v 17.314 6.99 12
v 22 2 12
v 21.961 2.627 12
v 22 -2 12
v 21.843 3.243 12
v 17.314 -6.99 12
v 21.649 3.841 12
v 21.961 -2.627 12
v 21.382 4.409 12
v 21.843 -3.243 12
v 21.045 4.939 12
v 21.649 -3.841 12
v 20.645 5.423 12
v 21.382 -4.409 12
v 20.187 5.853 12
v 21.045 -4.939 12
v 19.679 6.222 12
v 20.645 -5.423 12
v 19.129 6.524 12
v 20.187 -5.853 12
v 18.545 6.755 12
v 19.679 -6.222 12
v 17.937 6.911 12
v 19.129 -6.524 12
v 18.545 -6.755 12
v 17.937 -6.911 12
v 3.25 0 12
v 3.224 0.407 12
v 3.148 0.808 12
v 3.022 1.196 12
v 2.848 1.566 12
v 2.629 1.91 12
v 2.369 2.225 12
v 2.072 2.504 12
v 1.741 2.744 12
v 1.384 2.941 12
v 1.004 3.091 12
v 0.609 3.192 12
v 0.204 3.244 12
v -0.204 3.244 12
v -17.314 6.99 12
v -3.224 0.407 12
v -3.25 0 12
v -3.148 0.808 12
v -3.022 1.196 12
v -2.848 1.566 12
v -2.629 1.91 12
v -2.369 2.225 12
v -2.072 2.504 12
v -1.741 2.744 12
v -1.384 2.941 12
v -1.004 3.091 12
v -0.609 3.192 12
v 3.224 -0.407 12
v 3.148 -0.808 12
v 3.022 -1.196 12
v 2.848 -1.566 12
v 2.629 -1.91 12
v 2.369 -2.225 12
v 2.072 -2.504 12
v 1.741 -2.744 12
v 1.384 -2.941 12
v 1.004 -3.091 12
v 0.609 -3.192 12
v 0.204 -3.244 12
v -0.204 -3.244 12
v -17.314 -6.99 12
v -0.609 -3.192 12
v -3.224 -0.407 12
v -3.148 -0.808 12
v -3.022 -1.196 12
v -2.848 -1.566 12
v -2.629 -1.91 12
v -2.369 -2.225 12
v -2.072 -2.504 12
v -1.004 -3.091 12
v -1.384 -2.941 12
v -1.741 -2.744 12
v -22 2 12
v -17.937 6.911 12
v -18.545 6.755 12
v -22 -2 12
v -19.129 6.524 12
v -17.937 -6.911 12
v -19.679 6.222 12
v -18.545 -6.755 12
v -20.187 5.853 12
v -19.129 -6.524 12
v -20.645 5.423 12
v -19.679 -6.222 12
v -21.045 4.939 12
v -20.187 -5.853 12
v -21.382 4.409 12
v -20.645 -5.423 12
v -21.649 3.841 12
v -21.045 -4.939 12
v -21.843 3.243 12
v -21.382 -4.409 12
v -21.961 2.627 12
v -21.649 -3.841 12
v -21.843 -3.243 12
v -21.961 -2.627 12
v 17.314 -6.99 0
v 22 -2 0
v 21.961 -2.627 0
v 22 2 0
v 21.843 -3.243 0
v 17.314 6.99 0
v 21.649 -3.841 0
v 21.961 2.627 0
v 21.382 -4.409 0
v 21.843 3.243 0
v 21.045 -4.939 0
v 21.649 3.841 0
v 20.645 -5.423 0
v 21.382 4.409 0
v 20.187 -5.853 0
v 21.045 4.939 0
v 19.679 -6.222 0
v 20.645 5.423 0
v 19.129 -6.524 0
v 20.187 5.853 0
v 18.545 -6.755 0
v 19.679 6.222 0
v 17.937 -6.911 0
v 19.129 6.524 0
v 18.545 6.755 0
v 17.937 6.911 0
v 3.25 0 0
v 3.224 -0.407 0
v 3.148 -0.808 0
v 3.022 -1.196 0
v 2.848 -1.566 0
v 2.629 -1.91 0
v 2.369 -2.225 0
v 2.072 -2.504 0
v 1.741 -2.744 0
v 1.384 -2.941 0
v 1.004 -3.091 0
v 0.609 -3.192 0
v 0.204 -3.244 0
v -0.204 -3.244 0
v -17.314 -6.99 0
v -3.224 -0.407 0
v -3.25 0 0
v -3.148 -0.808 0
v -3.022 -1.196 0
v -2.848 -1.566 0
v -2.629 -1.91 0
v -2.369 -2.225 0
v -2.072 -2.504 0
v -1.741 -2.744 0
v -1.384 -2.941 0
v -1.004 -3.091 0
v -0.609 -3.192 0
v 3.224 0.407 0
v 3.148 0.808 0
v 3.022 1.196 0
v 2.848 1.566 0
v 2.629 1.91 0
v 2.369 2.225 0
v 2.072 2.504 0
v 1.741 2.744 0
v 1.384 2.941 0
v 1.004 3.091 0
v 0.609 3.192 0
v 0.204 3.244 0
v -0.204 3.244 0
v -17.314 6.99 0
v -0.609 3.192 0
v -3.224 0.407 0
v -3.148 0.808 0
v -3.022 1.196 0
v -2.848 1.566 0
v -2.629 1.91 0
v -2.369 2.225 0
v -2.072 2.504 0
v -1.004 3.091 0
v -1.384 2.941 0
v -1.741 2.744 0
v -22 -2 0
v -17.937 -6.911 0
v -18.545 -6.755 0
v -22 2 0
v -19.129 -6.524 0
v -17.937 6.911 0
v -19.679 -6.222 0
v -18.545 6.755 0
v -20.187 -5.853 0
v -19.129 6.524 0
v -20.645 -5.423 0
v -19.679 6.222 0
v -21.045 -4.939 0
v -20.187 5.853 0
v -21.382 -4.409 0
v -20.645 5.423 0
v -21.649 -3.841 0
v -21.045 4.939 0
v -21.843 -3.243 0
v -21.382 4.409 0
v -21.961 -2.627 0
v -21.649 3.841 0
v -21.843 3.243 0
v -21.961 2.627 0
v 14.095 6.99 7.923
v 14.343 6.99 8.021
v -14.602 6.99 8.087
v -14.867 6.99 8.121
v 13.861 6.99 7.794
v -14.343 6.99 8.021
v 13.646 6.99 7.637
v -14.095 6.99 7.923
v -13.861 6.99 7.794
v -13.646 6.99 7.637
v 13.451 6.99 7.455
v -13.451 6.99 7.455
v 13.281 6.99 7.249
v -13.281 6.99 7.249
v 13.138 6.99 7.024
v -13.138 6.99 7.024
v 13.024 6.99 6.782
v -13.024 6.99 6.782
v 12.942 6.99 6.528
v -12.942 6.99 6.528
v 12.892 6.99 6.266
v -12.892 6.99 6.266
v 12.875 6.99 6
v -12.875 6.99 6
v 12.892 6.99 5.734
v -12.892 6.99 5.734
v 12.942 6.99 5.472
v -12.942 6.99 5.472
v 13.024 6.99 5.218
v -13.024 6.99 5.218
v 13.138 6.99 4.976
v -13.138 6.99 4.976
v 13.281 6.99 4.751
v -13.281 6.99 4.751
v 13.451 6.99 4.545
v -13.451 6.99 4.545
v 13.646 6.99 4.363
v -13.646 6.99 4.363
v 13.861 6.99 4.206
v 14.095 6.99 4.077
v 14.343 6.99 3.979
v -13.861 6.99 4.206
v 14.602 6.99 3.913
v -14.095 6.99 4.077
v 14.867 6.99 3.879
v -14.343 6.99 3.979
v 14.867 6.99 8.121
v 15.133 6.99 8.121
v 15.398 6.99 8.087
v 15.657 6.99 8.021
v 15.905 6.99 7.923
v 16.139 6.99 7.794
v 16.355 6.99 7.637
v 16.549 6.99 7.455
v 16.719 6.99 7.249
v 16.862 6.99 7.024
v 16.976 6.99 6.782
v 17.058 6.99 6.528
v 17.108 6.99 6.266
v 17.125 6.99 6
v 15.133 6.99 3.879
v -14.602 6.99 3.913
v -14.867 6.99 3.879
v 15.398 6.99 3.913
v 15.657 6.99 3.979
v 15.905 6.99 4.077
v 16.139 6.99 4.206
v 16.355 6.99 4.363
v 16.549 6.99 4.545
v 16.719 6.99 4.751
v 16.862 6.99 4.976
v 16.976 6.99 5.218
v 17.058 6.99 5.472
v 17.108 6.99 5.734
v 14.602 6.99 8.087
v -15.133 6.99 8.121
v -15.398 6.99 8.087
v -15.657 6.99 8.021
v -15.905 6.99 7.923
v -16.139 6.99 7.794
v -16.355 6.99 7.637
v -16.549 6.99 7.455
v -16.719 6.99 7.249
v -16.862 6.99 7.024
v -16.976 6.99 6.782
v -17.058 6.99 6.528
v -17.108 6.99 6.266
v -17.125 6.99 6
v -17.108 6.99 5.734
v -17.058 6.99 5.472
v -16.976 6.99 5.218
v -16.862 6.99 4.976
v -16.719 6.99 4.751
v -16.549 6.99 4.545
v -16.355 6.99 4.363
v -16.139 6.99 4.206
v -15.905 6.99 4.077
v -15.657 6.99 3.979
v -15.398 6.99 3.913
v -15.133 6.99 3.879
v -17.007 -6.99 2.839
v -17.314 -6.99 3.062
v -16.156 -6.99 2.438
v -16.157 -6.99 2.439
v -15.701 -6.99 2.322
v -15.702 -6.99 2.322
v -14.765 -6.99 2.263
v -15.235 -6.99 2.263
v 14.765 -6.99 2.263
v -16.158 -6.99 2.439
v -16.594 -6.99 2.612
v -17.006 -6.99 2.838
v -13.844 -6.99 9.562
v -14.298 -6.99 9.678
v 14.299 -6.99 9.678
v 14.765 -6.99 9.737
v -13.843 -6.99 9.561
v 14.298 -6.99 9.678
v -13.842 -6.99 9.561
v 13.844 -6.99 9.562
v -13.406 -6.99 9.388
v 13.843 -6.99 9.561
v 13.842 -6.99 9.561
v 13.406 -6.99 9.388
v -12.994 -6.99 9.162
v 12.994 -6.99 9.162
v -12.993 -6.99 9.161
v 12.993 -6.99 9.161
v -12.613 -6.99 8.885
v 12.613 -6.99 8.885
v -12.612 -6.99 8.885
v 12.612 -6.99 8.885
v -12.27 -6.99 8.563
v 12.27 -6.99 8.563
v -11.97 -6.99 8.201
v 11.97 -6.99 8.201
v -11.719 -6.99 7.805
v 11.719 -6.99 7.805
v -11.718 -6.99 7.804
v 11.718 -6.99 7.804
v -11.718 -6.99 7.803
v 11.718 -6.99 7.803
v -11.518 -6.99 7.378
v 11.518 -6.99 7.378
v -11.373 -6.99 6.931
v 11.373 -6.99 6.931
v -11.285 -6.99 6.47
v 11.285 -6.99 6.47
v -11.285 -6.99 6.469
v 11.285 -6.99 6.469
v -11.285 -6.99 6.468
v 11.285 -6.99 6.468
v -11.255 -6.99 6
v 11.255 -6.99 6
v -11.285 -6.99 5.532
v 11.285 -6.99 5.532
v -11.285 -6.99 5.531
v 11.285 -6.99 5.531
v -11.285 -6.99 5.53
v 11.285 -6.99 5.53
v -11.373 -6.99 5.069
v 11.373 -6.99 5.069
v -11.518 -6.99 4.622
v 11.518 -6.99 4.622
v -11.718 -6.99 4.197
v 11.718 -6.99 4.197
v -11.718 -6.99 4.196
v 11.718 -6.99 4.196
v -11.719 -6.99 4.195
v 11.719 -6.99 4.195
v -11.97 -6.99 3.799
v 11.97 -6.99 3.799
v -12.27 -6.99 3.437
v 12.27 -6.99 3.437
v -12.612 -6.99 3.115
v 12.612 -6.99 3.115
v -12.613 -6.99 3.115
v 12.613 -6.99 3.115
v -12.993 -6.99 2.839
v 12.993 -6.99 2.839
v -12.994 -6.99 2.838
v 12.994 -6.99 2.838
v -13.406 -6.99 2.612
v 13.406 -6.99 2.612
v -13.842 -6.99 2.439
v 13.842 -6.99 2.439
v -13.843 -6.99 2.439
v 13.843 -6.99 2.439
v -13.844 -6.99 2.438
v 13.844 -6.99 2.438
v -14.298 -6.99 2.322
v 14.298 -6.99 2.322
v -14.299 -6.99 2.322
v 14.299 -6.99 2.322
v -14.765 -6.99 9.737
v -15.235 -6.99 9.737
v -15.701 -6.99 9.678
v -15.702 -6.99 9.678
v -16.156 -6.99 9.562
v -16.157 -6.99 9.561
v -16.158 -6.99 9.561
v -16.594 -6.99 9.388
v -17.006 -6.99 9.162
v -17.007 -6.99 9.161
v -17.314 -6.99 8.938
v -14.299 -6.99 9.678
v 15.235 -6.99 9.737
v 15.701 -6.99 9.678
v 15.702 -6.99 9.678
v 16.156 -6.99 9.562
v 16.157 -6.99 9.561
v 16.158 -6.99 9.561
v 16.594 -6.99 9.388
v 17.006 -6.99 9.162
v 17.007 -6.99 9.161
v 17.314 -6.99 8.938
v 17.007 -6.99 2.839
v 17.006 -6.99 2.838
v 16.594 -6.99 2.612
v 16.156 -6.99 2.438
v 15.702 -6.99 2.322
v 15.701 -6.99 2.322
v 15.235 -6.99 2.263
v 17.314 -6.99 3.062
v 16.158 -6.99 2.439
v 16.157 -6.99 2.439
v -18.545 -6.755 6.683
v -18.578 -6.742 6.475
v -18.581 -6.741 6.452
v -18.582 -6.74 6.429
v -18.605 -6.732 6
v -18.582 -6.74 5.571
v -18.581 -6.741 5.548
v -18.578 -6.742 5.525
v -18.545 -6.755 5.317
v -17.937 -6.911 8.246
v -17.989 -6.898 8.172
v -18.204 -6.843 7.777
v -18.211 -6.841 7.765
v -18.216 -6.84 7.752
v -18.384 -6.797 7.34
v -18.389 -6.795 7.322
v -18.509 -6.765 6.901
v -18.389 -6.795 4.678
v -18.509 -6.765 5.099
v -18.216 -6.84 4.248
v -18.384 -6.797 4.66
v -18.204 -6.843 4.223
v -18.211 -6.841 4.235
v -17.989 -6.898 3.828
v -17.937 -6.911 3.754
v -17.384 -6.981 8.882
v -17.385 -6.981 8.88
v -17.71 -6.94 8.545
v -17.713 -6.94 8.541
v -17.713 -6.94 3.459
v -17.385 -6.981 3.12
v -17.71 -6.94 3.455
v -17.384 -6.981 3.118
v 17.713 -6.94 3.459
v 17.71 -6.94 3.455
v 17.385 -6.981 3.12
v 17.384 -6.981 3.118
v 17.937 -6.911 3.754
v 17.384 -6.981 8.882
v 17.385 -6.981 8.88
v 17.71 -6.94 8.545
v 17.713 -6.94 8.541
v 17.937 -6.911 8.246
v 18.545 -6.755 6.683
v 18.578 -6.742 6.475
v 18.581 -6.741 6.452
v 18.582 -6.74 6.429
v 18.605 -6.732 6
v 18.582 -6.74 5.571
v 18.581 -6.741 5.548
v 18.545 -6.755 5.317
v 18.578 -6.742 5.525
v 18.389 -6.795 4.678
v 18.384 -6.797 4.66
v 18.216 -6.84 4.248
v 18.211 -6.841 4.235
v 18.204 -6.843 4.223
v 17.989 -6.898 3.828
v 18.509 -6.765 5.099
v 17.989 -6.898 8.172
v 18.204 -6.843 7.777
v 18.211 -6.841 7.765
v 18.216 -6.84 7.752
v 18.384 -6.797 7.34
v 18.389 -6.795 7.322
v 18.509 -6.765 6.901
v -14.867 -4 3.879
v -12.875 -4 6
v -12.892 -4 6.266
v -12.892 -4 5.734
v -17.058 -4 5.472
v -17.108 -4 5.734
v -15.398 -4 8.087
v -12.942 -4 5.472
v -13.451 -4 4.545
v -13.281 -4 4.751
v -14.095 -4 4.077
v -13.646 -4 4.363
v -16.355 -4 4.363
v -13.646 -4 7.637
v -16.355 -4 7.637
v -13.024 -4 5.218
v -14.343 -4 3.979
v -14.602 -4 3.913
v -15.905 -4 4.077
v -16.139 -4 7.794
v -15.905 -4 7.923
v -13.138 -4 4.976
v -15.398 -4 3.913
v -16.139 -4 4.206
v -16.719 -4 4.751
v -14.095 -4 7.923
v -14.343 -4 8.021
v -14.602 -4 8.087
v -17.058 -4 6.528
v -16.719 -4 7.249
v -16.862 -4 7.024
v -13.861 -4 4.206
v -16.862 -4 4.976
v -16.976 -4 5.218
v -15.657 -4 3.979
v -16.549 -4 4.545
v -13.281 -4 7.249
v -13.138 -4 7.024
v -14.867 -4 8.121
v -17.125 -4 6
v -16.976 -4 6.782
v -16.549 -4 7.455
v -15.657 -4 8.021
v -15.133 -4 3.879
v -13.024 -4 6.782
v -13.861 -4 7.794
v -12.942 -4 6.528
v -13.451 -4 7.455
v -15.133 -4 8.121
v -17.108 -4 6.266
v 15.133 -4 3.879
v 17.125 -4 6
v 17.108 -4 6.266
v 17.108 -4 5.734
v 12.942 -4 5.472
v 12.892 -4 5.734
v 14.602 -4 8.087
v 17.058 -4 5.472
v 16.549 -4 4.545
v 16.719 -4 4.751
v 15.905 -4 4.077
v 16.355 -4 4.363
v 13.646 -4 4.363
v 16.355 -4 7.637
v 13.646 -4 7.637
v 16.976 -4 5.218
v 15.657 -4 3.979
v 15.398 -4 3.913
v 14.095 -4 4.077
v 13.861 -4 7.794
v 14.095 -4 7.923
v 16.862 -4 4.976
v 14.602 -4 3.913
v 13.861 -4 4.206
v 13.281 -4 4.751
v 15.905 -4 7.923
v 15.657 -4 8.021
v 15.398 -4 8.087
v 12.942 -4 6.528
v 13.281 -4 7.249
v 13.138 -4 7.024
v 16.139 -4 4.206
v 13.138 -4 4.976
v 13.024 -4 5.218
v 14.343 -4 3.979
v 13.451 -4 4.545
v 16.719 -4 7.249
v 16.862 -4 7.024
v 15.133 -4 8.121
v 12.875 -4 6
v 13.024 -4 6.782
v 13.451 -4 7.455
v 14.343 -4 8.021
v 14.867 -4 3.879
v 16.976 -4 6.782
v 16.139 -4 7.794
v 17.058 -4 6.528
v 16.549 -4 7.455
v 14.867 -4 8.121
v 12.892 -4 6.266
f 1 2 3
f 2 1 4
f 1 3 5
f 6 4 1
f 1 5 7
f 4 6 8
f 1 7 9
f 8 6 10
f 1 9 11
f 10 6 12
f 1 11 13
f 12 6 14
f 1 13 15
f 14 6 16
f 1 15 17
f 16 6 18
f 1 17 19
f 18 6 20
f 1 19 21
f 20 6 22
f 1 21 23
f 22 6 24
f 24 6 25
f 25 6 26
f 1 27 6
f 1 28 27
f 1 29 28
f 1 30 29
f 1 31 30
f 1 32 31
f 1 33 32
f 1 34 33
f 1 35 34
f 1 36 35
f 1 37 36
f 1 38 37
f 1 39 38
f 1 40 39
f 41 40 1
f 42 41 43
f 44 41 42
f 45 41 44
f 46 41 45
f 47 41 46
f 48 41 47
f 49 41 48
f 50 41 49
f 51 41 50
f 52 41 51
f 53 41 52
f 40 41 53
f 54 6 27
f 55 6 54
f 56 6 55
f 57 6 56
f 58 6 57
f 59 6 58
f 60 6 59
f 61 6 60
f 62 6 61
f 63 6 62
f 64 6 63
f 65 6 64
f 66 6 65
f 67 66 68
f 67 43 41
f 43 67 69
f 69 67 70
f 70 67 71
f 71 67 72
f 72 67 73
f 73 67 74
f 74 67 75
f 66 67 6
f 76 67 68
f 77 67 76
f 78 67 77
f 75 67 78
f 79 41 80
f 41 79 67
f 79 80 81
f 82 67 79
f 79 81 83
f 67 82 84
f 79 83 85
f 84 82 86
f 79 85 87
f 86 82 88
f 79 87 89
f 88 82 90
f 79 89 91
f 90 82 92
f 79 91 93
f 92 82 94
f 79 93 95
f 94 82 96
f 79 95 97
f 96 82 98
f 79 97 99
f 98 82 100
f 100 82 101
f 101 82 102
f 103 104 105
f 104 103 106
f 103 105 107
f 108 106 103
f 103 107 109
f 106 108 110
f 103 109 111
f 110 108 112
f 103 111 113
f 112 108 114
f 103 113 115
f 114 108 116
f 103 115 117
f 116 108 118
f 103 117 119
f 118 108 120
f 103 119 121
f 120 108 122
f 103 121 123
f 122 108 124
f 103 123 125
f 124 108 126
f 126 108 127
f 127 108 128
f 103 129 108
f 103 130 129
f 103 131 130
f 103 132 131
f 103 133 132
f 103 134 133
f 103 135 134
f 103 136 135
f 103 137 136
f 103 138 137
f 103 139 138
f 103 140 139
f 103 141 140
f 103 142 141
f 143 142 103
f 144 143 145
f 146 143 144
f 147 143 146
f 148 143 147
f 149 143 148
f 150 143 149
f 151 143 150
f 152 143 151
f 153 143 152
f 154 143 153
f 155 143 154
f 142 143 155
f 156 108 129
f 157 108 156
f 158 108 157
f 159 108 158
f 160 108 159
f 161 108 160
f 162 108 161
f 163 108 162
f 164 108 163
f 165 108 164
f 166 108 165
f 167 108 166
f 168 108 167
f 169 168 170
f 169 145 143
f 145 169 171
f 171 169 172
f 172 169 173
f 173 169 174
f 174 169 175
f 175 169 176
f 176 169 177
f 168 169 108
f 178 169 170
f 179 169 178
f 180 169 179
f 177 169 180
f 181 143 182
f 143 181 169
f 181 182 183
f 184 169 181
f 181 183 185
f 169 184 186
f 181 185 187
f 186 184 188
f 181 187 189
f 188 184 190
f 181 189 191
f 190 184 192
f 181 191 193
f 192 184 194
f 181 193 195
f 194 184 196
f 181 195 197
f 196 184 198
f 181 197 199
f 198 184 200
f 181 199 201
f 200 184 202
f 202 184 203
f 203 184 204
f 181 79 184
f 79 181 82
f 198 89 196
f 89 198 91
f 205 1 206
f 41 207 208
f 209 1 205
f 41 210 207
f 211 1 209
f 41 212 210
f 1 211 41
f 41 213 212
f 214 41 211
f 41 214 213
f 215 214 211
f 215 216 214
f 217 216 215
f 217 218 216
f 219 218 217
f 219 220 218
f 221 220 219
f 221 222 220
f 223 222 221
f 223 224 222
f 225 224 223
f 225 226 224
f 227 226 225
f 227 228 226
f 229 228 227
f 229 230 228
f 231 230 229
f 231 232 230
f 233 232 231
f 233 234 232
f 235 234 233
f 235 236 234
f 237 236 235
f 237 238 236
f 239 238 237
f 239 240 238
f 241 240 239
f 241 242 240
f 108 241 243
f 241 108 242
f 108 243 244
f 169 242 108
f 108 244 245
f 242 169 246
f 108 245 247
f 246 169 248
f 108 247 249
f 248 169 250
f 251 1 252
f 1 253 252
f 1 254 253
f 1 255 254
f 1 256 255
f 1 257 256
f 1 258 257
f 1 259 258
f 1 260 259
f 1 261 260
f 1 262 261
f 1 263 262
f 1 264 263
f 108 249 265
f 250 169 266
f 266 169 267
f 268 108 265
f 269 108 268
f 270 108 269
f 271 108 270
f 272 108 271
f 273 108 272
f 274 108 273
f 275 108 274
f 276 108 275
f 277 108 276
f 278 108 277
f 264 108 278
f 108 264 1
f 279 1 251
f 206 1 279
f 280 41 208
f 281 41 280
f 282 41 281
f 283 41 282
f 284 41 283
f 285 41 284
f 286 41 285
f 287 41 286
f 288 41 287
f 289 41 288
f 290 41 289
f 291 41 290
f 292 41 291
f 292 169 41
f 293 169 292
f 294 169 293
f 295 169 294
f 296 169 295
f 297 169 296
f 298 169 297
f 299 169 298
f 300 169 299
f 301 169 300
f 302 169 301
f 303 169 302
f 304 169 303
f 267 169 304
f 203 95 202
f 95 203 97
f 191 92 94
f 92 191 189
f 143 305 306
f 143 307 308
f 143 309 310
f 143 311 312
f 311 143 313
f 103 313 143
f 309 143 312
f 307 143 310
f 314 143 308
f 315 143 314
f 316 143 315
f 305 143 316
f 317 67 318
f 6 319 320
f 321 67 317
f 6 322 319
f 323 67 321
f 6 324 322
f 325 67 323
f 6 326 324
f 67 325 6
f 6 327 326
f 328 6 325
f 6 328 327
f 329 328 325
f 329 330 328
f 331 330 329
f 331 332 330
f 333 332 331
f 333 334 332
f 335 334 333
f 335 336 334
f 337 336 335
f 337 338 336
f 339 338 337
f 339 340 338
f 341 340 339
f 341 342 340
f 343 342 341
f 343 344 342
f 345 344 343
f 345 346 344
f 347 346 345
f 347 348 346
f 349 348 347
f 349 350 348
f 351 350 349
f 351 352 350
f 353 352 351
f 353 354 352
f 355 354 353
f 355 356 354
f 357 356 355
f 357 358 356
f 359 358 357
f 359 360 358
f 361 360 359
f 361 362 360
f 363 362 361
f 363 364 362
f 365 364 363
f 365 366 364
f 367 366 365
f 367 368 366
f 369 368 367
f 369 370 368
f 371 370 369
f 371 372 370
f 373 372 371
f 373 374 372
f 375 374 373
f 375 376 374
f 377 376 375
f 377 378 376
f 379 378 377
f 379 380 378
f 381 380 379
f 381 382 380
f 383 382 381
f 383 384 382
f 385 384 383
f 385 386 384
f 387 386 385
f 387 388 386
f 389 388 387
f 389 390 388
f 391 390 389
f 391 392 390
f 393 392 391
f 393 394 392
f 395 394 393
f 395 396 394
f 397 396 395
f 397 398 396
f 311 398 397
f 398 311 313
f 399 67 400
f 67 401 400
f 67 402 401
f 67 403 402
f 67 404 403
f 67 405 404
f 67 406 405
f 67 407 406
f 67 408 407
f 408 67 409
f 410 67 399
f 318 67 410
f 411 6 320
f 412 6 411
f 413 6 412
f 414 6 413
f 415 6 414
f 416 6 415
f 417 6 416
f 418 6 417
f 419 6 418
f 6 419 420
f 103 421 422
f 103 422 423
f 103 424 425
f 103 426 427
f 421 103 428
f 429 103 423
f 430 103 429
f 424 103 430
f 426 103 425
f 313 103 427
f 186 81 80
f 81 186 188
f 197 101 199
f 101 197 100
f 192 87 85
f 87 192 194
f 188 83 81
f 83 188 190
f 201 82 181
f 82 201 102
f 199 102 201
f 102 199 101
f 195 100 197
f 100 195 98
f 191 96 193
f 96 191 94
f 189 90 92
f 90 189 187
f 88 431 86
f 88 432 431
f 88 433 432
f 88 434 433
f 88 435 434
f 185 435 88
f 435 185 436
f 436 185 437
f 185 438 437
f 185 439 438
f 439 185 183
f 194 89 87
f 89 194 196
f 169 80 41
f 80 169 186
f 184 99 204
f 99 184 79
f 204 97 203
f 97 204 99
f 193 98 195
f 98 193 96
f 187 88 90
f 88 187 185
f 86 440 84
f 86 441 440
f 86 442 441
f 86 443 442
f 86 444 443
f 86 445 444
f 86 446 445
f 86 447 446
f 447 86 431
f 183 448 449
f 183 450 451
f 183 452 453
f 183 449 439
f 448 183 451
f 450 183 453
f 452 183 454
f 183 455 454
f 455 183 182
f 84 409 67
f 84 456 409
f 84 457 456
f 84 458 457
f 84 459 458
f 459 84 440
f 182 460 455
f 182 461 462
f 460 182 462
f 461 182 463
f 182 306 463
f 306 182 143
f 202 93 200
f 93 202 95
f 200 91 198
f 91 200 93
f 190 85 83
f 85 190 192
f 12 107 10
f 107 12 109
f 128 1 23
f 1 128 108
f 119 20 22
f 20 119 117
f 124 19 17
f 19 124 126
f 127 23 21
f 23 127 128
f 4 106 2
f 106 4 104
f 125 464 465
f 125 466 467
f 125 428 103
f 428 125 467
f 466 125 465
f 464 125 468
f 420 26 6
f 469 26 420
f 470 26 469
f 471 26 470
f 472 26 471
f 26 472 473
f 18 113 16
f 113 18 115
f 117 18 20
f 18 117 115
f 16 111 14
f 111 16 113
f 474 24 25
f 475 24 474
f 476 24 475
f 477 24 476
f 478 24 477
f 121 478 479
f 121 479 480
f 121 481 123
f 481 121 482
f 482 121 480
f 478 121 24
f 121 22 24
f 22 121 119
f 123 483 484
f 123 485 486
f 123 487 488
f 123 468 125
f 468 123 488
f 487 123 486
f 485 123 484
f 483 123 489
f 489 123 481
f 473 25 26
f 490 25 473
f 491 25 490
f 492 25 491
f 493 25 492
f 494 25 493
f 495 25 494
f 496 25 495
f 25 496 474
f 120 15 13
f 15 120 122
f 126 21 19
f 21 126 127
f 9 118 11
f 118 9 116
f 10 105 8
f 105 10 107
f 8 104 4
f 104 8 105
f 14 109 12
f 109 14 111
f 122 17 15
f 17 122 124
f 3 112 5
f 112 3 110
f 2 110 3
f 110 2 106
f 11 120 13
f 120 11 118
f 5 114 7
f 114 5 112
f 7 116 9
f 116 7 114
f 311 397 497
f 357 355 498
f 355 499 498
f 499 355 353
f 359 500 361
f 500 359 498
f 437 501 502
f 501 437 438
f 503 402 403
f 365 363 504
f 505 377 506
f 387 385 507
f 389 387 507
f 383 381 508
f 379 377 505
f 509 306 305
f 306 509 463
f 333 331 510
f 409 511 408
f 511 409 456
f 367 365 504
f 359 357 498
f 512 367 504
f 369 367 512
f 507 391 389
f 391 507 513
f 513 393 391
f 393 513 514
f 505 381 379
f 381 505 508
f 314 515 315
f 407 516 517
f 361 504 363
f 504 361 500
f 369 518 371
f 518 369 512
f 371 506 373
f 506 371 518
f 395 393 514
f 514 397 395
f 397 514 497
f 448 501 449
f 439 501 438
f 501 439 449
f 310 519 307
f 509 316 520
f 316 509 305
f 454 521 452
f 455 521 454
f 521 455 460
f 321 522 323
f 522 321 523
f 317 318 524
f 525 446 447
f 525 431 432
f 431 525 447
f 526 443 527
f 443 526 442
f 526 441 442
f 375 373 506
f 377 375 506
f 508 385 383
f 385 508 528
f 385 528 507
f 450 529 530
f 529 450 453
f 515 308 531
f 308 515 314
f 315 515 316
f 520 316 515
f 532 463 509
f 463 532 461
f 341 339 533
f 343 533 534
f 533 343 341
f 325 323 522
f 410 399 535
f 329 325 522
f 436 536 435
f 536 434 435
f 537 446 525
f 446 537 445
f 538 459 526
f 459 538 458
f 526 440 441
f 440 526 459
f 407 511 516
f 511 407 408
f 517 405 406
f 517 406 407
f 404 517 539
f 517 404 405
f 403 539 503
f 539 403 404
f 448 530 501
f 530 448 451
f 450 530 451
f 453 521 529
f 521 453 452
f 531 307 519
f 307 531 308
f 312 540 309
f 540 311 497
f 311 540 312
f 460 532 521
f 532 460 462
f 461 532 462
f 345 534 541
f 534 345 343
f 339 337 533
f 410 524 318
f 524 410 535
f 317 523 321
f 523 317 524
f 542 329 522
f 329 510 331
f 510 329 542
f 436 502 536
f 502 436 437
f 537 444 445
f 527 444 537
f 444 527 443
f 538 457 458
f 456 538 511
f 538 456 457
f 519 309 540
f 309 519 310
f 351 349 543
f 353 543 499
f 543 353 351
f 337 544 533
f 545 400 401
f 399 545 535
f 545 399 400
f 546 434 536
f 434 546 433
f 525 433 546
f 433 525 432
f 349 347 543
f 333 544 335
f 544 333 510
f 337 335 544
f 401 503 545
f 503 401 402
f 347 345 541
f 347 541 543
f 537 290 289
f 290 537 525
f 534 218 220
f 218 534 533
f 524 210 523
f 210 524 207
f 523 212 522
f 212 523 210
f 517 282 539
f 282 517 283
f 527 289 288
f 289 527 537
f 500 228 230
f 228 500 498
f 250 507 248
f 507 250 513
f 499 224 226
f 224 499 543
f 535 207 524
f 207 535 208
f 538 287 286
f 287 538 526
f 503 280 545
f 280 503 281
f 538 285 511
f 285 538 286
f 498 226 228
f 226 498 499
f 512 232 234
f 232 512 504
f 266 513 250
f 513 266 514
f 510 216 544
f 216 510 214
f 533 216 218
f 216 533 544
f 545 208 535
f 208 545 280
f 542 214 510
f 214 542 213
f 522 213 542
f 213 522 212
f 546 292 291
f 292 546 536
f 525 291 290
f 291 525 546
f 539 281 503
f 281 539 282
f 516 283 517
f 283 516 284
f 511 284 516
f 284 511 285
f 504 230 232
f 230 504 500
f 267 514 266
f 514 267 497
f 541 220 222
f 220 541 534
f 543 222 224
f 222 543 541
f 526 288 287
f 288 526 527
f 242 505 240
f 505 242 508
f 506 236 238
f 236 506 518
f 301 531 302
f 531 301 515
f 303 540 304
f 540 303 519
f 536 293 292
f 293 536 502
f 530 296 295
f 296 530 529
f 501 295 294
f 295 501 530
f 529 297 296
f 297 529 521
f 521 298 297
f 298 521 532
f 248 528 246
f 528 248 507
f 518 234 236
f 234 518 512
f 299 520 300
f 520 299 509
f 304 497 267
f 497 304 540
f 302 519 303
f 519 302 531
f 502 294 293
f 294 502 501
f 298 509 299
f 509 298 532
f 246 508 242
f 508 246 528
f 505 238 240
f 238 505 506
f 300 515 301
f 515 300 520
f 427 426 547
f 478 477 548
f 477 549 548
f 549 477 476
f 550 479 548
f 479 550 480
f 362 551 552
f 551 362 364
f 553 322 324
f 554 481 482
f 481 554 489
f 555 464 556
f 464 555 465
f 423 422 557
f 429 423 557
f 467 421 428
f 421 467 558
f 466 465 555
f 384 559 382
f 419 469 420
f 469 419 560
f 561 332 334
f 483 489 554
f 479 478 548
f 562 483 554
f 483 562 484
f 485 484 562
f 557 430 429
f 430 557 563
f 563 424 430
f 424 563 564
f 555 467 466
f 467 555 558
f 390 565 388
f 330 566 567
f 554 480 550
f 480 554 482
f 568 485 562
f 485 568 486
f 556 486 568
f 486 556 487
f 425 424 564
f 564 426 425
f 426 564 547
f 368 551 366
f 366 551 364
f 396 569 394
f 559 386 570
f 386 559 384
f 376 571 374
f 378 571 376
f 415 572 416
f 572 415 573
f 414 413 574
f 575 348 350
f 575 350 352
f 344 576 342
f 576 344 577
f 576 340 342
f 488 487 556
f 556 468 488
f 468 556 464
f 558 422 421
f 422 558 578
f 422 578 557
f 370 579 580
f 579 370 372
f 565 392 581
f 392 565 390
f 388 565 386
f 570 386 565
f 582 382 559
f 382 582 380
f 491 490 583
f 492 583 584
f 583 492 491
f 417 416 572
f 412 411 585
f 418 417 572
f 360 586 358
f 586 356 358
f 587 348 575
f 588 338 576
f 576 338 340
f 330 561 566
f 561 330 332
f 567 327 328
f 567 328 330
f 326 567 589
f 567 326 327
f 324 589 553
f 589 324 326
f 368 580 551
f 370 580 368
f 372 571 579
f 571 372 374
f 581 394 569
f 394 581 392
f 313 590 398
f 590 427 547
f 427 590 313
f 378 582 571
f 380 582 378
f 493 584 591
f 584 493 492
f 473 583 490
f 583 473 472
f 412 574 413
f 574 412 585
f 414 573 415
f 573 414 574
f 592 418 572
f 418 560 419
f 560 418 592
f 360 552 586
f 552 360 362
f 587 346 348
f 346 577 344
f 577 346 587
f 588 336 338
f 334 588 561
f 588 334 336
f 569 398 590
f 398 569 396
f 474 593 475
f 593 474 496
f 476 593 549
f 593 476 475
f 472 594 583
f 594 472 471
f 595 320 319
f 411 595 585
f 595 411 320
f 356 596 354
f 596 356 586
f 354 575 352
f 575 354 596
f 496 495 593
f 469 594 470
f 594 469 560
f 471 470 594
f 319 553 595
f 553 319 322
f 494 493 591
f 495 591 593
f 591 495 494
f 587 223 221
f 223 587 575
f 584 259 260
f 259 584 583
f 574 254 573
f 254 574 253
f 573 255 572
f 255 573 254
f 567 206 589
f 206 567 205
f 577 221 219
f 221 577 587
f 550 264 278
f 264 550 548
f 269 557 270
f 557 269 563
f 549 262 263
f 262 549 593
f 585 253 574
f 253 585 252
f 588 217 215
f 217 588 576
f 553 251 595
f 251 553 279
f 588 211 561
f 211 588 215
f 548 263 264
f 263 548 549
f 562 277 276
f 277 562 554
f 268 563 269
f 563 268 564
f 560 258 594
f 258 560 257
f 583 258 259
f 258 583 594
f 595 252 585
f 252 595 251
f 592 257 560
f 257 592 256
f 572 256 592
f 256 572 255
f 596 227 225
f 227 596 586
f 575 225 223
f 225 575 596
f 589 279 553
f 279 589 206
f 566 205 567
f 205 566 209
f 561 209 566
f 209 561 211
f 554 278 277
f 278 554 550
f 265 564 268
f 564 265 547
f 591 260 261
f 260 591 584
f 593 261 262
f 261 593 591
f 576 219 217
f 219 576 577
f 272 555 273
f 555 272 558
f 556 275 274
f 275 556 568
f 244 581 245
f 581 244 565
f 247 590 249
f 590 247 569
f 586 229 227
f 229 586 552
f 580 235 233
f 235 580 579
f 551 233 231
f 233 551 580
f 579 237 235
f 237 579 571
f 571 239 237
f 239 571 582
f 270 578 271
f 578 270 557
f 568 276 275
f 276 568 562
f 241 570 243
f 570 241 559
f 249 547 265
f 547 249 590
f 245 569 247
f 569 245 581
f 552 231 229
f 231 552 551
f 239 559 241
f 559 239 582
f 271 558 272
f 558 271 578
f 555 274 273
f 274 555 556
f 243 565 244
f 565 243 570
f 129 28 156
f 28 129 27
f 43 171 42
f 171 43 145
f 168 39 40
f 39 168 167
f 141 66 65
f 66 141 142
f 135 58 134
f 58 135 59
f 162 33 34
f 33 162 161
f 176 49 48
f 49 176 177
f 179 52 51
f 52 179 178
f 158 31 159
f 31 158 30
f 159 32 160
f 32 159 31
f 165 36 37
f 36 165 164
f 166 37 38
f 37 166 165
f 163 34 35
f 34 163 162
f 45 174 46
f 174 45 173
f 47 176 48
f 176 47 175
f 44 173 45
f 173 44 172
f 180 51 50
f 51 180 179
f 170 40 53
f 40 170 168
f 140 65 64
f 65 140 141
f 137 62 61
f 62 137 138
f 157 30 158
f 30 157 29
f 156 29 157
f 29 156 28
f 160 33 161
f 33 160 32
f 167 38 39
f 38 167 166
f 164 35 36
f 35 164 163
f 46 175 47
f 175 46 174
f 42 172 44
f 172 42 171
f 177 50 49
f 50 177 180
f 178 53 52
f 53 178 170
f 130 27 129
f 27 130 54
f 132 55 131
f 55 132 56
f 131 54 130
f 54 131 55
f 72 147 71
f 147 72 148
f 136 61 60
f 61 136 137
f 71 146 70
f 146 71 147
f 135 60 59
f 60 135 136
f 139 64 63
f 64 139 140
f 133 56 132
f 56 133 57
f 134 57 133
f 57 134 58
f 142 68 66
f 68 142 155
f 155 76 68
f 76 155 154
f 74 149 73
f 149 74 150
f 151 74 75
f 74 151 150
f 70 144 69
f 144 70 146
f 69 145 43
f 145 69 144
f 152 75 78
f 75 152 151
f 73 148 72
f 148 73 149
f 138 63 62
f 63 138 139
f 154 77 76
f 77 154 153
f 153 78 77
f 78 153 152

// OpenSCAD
$fn = 50;


difference() {
	union() {
		cylinder(h = 12, r = 7.0000000000);
		translate(v = [-7.5000000000, 0.0000000000, 0]) {
			hull() {
				translate(v = [-9.5000000000, 2.0000000000, 0]) {
					cylinder(h = 12, r = 5);
				}
				translate(v = [9.5000000000, 2.0000000000, 0]) {
					cylinder(h = 12, r = 5);
				}
				translate(v = [-9.5000000000, -2.0000000000, 0]) {
					cylinder(h = 12, r = 5);
				}
				translate(v = [9.5000000000, -2.0000000000, 0]) {
					cylinder(h = 12, r = 5);
				}
			}
		}
		translate(v = [7.5000000000, 0.0000000000, 0]) {
			hull() {
				translate(v = [-9.5000000000, 2.0000000000, 0]) {
					cylinder(h = 12, r = 5);
				}
				translate(v = [9.5000000000, 2.0000000000, 0]) {
					cylinder(h = 12, r = 5);
				}
				translate(v = [-9.5000000000, -2.0000000000, 0]) {
					cylinder(h = 12, r = 5);
				}
				translate(v = [9.5000000000, -2.0000000000, 0]) {
					cylinder(h = 12, r = 5);
				}
			}
		}
	}
	union() {
		translate(v = [-15.0000000000, -7.0000000000, 6.0000000000]) {
			rotate(a = [90, 0, 0]) {
				difference() {
					union() {
						#translate(v = [0, 0, -14.0000000000]) {
							cylinder(h = 14, r = 2.0000000000);
						}
						#translate(v = [0, 0, -3]) {
							cylinder(h = 3, r1 = 2.1250000000, r2 = 3.7500000000);
						}
						#translate(v = [0, 0, -14.0000000000]) {
							cylinder(h = 14, r = 2.1250000000);
						}
						#translate(v = [0, 0, -14.0000000000]) {
							cylinder(h = 14, r = 2.0000000000);
						}
					}
					union();
				}
			}
		}
		translate(v = [15.0000000000, -7.0000000000, 6.0000000000]) {
			rotate(a = [90, 0, 0]) {
				difference() {
					union() {
						#translate(v = [0, 0, -14.0000000000]) {
							cylinder(h = 14, r = 2.0000000000);
						}
						#translate(v = [0, 0, -3]) {
							cylinder(h = 3, r1 = 2.1250000000, r2 = 3.7500000000);
						}
						#translate(v = [0, 0, -14.0000000000]) {
							cylinder(h = 14, r = 2.1250000000);
						}
						#translate(v = [0, 0, -14.0000000000]) {
							cylinder(h = 14, r = 2.0000000000);
						}
					}
					union();
				}
			}
		}
		translate(v = [0, 0, -100]) {
			cylinder(h = 200, r = 3.2500000000);
		}
		translate(v = [0, 0, -100]) {
			cylinder(h = 200, r = 1.8000000000);
		}
	}
}
